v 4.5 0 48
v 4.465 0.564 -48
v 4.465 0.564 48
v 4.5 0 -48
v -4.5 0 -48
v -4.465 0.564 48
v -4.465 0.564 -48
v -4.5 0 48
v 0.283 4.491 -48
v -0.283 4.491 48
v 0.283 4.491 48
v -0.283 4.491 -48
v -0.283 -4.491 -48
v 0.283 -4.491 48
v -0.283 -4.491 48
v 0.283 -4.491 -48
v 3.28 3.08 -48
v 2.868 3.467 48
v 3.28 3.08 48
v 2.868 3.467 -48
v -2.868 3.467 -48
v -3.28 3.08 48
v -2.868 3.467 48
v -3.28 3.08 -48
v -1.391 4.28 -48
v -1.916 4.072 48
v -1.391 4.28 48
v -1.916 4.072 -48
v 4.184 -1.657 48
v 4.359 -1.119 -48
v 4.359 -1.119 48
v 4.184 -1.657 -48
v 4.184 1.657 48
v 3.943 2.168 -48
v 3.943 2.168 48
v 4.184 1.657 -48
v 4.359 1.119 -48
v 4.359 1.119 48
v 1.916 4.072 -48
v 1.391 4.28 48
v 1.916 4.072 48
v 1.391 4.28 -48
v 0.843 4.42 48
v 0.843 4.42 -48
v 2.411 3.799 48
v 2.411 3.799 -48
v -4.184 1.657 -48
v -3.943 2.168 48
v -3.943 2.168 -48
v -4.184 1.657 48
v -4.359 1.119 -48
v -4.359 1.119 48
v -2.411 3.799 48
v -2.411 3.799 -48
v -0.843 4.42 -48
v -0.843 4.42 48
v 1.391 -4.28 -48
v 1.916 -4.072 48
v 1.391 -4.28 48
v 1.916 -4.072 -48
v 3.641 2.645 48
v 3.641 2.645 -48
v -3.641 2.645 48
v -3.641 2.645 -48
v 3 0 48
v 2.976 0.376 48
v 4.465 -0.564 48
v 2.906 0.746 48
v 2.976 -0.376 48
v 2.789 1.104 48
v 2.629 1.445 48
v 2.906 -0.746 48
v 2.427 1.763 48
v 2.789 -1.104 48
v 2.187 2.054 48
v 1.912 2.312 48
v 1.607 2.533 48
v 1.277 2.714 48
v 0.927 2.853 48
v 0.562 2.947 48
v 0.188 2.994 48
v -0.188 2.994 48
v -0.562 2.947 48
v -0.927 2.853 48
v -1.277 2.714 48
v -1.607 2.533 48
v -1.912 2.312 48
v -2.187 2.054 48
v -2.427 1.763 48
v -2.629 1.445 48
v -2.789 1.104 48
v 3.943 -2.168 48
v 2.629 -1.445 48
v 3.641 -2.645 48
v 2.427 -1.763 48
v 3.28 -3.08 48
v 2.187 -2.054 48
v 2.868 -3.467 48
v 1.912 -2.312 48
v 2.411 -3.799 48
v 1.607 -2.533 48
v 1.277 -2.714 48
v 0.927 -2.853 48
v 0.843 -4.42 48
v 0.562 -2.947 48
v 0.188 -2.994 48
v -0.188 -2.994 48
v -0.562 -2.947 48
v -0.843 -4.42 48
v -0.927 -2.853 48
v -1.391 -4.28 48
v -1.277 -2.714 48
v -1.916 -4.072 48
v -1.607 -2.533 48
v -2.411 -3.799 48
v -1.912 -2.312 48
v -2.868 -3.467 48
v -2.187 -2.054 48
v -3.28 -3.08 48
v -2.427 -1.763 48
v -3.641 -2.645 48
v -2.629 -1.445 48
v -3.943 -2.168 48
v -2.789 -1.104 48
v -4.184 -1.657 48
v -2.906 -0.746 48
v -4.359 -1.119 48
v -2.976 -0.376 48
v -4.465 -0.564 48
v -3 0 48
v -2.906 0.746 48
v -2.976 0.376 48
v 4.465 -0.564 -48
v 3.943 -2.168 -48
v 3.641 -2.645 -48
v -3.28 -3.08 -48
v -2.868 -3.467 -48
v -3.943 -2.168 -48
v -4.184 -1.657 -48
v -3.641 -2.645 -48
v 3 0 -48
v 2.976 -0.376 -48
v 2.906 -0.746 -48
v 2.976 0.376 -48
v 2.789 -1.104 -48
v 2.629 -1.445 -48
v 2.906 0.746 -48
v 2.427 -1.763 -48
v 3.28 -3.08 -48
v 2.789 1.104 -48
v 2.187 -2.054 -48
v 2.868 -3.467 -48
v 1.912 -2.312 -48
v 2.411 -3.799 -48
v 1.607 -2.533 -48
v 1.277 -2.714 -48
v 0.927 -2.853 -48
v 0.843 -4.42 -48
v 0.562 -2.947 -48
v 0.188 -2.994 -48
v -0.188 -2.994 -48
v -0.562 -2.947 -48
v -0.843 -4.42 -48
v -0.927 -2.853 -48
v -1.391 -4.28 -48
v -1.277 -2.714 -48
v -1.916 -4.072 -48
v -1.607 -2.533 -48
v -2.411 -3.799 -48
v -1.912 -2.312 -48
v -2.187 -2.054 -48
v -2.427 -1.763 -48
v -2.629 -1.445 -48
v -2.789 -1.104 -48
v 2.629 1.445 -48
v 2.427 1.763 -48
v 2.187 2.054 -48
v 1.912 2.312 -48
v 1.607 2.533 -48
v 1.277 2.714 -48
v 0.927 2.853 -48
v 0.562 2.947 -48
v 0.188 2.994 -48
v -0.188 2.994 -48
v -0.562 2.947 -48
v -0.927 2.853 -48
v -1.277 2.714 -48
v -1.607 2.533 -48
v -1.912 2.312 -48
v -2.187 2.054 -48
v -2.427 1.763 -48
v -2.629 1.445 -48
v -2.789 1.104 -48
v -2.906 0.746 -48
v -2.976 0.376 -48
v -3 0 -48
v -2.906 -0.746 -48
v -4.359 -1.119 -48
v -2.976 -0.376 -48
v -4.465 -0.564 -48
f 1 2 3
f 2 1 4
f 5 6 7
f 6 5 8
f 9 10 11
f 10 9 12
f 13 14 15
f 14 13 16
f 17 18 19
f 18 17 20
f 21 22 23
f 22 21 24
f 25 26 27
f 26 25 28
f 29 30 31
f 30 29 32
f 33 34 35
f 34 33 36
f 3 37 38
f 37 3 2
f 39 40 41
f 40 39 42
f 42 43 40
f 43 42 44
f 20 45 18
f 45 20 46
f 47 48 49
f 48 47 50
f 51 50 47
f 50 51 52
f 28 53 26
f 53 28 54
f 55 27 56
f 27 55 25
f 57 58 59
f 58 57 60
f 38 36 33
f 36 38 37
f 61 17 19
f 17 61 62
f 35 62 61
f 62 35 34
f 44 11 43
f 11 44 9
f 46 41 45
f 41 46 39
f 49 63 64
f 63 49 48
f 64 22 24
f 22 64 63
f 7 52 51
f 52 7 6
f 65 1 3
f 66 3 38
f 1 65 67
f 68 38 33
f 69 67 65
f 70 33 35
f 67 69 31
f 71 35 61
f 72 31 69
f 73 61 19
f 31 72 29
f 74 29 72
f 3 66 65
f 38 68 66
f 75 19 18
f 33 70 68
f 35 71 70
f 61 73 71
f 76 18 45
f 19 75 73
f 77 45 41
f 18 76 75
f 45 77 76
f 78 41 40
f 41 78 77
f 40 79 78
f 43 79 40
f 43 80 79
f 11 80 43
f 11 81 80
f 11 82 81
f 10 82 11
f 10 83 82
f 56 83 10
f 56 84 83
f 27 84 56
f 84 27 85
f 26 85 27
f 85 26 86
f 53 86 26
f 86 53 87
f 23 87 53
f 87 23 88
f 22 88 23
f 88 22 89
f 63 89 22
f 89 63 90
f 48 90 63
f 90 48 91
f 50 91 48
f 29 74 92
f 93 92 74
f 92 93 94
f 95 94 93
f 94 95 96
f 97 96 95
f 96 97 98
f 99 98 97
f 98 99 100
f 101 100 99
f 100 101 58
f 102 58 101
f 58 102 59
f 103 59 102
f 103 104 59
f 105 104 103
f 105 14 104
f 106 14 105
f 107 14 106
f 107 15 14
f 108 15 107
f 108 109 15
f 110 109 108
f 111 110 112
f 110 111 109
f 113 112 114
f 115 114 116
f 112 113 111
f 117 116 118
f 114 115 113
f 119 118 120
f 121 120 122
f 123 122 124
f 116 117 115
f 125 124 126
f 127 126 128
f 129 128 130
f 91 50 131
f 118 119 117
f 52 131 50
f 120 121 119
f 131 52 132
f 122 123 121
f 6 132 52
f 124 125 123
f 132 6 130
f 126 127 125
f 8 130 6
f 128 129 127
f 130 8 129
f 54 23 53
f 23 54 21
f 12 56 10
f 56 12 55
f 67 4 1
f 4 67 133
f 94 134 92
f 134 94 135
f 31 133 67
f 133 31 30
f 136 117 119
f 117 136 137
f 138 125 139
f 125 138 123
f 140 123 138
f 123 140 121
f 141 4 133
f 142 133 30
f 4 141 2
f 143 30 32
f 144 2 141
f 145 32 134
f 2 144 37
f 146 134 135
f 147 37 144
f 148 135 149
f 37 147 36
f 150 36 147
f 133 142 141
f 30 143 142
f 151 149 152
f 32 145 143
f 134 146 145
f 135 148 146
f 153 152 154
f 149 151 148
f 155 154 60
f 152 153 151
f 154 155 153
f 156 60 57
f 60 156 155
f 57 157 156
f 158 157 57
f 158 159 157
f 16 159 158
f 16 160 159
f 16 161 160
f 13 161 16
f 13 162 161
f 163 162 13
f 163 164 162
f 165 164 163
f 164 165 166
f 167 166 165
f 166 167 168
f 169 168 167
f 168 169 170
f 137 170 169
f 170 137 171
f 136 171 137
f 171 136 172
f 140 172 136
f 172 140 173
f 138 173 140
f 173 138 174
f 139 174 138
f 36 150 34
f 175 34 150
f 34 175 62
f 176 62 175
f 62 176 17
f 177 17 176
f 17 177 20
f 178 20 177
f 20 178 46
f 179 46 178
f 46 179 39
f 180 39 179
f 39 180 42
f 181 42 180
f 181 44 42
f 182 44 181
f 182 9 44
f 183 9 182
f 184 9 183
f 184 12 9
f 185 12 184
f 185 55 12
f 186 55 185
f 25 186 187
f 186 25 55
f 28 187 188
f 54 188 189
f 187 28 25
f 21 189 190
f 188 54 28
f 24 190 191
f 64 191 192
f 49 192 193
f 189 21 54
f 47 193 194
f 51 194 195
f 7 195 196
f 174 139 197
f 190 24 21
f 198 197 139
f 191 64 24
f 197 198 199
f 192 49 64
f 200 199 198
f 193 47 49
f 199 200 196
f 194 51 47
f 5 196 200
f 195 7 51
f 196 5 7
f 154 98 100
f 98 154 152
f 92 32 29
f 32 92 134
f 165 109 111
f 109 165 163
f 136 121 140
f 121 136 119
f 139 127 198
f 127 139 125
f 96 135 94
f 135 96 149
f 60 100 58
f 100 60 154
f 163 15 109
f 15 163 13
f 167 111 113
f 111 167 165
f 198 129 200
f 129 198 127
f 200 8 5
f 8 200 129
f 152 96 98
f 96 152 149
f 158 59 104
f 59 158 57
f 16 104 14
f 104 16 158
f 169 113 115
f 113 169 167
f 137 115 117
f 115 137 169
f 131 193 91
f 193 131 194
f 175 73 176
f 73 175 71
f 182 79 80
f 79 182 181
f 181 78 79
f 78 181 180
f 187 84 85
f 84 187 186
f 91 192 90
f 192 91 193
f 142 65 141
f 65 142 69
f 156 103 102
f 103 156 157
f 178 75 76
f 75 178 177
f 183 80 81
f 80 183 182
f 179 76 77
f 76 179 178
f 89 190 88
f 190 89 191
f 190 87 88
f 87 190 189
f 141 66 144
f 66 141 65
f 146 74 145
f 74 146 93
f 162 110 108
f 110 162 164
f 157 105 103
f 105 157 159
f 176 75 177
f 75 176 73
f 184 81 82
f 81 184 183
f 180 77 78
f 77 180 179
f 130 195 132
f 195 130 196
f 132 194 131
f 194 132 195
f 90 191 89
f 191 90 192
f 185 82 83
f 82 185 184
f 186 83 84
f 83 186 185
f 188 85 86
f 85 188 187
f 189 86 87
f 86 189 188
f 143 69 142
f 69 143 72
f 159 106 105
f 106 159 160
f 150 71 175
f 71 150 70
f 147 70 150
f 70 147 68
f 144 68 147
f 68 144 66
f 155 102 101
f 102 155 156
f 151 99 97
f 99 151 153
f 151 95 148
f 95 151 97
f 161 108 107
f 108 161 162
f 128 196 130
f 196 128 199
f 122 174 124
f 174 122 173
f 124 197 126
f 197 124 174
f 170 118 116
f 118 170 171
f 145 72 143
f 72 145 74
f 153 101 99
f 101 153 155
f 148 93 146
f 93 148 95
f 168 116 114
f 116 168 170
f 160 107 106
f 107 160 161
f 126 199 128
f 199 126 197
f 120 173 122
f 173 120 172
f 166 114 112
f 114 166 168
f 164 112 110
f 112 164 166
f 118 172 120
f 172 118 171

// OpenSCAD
$fn = 50;


difference() {
	union() {
		translate(v = [0, 0, -48.0000000000]) {
			cylinder(h = 96, r = 4.5000000000);
		}
	}
	union() {
		translate(v = [0, 0, -100.0000000000]) {
			cylinder(h = 200, r = 3);
		}
	}
}
